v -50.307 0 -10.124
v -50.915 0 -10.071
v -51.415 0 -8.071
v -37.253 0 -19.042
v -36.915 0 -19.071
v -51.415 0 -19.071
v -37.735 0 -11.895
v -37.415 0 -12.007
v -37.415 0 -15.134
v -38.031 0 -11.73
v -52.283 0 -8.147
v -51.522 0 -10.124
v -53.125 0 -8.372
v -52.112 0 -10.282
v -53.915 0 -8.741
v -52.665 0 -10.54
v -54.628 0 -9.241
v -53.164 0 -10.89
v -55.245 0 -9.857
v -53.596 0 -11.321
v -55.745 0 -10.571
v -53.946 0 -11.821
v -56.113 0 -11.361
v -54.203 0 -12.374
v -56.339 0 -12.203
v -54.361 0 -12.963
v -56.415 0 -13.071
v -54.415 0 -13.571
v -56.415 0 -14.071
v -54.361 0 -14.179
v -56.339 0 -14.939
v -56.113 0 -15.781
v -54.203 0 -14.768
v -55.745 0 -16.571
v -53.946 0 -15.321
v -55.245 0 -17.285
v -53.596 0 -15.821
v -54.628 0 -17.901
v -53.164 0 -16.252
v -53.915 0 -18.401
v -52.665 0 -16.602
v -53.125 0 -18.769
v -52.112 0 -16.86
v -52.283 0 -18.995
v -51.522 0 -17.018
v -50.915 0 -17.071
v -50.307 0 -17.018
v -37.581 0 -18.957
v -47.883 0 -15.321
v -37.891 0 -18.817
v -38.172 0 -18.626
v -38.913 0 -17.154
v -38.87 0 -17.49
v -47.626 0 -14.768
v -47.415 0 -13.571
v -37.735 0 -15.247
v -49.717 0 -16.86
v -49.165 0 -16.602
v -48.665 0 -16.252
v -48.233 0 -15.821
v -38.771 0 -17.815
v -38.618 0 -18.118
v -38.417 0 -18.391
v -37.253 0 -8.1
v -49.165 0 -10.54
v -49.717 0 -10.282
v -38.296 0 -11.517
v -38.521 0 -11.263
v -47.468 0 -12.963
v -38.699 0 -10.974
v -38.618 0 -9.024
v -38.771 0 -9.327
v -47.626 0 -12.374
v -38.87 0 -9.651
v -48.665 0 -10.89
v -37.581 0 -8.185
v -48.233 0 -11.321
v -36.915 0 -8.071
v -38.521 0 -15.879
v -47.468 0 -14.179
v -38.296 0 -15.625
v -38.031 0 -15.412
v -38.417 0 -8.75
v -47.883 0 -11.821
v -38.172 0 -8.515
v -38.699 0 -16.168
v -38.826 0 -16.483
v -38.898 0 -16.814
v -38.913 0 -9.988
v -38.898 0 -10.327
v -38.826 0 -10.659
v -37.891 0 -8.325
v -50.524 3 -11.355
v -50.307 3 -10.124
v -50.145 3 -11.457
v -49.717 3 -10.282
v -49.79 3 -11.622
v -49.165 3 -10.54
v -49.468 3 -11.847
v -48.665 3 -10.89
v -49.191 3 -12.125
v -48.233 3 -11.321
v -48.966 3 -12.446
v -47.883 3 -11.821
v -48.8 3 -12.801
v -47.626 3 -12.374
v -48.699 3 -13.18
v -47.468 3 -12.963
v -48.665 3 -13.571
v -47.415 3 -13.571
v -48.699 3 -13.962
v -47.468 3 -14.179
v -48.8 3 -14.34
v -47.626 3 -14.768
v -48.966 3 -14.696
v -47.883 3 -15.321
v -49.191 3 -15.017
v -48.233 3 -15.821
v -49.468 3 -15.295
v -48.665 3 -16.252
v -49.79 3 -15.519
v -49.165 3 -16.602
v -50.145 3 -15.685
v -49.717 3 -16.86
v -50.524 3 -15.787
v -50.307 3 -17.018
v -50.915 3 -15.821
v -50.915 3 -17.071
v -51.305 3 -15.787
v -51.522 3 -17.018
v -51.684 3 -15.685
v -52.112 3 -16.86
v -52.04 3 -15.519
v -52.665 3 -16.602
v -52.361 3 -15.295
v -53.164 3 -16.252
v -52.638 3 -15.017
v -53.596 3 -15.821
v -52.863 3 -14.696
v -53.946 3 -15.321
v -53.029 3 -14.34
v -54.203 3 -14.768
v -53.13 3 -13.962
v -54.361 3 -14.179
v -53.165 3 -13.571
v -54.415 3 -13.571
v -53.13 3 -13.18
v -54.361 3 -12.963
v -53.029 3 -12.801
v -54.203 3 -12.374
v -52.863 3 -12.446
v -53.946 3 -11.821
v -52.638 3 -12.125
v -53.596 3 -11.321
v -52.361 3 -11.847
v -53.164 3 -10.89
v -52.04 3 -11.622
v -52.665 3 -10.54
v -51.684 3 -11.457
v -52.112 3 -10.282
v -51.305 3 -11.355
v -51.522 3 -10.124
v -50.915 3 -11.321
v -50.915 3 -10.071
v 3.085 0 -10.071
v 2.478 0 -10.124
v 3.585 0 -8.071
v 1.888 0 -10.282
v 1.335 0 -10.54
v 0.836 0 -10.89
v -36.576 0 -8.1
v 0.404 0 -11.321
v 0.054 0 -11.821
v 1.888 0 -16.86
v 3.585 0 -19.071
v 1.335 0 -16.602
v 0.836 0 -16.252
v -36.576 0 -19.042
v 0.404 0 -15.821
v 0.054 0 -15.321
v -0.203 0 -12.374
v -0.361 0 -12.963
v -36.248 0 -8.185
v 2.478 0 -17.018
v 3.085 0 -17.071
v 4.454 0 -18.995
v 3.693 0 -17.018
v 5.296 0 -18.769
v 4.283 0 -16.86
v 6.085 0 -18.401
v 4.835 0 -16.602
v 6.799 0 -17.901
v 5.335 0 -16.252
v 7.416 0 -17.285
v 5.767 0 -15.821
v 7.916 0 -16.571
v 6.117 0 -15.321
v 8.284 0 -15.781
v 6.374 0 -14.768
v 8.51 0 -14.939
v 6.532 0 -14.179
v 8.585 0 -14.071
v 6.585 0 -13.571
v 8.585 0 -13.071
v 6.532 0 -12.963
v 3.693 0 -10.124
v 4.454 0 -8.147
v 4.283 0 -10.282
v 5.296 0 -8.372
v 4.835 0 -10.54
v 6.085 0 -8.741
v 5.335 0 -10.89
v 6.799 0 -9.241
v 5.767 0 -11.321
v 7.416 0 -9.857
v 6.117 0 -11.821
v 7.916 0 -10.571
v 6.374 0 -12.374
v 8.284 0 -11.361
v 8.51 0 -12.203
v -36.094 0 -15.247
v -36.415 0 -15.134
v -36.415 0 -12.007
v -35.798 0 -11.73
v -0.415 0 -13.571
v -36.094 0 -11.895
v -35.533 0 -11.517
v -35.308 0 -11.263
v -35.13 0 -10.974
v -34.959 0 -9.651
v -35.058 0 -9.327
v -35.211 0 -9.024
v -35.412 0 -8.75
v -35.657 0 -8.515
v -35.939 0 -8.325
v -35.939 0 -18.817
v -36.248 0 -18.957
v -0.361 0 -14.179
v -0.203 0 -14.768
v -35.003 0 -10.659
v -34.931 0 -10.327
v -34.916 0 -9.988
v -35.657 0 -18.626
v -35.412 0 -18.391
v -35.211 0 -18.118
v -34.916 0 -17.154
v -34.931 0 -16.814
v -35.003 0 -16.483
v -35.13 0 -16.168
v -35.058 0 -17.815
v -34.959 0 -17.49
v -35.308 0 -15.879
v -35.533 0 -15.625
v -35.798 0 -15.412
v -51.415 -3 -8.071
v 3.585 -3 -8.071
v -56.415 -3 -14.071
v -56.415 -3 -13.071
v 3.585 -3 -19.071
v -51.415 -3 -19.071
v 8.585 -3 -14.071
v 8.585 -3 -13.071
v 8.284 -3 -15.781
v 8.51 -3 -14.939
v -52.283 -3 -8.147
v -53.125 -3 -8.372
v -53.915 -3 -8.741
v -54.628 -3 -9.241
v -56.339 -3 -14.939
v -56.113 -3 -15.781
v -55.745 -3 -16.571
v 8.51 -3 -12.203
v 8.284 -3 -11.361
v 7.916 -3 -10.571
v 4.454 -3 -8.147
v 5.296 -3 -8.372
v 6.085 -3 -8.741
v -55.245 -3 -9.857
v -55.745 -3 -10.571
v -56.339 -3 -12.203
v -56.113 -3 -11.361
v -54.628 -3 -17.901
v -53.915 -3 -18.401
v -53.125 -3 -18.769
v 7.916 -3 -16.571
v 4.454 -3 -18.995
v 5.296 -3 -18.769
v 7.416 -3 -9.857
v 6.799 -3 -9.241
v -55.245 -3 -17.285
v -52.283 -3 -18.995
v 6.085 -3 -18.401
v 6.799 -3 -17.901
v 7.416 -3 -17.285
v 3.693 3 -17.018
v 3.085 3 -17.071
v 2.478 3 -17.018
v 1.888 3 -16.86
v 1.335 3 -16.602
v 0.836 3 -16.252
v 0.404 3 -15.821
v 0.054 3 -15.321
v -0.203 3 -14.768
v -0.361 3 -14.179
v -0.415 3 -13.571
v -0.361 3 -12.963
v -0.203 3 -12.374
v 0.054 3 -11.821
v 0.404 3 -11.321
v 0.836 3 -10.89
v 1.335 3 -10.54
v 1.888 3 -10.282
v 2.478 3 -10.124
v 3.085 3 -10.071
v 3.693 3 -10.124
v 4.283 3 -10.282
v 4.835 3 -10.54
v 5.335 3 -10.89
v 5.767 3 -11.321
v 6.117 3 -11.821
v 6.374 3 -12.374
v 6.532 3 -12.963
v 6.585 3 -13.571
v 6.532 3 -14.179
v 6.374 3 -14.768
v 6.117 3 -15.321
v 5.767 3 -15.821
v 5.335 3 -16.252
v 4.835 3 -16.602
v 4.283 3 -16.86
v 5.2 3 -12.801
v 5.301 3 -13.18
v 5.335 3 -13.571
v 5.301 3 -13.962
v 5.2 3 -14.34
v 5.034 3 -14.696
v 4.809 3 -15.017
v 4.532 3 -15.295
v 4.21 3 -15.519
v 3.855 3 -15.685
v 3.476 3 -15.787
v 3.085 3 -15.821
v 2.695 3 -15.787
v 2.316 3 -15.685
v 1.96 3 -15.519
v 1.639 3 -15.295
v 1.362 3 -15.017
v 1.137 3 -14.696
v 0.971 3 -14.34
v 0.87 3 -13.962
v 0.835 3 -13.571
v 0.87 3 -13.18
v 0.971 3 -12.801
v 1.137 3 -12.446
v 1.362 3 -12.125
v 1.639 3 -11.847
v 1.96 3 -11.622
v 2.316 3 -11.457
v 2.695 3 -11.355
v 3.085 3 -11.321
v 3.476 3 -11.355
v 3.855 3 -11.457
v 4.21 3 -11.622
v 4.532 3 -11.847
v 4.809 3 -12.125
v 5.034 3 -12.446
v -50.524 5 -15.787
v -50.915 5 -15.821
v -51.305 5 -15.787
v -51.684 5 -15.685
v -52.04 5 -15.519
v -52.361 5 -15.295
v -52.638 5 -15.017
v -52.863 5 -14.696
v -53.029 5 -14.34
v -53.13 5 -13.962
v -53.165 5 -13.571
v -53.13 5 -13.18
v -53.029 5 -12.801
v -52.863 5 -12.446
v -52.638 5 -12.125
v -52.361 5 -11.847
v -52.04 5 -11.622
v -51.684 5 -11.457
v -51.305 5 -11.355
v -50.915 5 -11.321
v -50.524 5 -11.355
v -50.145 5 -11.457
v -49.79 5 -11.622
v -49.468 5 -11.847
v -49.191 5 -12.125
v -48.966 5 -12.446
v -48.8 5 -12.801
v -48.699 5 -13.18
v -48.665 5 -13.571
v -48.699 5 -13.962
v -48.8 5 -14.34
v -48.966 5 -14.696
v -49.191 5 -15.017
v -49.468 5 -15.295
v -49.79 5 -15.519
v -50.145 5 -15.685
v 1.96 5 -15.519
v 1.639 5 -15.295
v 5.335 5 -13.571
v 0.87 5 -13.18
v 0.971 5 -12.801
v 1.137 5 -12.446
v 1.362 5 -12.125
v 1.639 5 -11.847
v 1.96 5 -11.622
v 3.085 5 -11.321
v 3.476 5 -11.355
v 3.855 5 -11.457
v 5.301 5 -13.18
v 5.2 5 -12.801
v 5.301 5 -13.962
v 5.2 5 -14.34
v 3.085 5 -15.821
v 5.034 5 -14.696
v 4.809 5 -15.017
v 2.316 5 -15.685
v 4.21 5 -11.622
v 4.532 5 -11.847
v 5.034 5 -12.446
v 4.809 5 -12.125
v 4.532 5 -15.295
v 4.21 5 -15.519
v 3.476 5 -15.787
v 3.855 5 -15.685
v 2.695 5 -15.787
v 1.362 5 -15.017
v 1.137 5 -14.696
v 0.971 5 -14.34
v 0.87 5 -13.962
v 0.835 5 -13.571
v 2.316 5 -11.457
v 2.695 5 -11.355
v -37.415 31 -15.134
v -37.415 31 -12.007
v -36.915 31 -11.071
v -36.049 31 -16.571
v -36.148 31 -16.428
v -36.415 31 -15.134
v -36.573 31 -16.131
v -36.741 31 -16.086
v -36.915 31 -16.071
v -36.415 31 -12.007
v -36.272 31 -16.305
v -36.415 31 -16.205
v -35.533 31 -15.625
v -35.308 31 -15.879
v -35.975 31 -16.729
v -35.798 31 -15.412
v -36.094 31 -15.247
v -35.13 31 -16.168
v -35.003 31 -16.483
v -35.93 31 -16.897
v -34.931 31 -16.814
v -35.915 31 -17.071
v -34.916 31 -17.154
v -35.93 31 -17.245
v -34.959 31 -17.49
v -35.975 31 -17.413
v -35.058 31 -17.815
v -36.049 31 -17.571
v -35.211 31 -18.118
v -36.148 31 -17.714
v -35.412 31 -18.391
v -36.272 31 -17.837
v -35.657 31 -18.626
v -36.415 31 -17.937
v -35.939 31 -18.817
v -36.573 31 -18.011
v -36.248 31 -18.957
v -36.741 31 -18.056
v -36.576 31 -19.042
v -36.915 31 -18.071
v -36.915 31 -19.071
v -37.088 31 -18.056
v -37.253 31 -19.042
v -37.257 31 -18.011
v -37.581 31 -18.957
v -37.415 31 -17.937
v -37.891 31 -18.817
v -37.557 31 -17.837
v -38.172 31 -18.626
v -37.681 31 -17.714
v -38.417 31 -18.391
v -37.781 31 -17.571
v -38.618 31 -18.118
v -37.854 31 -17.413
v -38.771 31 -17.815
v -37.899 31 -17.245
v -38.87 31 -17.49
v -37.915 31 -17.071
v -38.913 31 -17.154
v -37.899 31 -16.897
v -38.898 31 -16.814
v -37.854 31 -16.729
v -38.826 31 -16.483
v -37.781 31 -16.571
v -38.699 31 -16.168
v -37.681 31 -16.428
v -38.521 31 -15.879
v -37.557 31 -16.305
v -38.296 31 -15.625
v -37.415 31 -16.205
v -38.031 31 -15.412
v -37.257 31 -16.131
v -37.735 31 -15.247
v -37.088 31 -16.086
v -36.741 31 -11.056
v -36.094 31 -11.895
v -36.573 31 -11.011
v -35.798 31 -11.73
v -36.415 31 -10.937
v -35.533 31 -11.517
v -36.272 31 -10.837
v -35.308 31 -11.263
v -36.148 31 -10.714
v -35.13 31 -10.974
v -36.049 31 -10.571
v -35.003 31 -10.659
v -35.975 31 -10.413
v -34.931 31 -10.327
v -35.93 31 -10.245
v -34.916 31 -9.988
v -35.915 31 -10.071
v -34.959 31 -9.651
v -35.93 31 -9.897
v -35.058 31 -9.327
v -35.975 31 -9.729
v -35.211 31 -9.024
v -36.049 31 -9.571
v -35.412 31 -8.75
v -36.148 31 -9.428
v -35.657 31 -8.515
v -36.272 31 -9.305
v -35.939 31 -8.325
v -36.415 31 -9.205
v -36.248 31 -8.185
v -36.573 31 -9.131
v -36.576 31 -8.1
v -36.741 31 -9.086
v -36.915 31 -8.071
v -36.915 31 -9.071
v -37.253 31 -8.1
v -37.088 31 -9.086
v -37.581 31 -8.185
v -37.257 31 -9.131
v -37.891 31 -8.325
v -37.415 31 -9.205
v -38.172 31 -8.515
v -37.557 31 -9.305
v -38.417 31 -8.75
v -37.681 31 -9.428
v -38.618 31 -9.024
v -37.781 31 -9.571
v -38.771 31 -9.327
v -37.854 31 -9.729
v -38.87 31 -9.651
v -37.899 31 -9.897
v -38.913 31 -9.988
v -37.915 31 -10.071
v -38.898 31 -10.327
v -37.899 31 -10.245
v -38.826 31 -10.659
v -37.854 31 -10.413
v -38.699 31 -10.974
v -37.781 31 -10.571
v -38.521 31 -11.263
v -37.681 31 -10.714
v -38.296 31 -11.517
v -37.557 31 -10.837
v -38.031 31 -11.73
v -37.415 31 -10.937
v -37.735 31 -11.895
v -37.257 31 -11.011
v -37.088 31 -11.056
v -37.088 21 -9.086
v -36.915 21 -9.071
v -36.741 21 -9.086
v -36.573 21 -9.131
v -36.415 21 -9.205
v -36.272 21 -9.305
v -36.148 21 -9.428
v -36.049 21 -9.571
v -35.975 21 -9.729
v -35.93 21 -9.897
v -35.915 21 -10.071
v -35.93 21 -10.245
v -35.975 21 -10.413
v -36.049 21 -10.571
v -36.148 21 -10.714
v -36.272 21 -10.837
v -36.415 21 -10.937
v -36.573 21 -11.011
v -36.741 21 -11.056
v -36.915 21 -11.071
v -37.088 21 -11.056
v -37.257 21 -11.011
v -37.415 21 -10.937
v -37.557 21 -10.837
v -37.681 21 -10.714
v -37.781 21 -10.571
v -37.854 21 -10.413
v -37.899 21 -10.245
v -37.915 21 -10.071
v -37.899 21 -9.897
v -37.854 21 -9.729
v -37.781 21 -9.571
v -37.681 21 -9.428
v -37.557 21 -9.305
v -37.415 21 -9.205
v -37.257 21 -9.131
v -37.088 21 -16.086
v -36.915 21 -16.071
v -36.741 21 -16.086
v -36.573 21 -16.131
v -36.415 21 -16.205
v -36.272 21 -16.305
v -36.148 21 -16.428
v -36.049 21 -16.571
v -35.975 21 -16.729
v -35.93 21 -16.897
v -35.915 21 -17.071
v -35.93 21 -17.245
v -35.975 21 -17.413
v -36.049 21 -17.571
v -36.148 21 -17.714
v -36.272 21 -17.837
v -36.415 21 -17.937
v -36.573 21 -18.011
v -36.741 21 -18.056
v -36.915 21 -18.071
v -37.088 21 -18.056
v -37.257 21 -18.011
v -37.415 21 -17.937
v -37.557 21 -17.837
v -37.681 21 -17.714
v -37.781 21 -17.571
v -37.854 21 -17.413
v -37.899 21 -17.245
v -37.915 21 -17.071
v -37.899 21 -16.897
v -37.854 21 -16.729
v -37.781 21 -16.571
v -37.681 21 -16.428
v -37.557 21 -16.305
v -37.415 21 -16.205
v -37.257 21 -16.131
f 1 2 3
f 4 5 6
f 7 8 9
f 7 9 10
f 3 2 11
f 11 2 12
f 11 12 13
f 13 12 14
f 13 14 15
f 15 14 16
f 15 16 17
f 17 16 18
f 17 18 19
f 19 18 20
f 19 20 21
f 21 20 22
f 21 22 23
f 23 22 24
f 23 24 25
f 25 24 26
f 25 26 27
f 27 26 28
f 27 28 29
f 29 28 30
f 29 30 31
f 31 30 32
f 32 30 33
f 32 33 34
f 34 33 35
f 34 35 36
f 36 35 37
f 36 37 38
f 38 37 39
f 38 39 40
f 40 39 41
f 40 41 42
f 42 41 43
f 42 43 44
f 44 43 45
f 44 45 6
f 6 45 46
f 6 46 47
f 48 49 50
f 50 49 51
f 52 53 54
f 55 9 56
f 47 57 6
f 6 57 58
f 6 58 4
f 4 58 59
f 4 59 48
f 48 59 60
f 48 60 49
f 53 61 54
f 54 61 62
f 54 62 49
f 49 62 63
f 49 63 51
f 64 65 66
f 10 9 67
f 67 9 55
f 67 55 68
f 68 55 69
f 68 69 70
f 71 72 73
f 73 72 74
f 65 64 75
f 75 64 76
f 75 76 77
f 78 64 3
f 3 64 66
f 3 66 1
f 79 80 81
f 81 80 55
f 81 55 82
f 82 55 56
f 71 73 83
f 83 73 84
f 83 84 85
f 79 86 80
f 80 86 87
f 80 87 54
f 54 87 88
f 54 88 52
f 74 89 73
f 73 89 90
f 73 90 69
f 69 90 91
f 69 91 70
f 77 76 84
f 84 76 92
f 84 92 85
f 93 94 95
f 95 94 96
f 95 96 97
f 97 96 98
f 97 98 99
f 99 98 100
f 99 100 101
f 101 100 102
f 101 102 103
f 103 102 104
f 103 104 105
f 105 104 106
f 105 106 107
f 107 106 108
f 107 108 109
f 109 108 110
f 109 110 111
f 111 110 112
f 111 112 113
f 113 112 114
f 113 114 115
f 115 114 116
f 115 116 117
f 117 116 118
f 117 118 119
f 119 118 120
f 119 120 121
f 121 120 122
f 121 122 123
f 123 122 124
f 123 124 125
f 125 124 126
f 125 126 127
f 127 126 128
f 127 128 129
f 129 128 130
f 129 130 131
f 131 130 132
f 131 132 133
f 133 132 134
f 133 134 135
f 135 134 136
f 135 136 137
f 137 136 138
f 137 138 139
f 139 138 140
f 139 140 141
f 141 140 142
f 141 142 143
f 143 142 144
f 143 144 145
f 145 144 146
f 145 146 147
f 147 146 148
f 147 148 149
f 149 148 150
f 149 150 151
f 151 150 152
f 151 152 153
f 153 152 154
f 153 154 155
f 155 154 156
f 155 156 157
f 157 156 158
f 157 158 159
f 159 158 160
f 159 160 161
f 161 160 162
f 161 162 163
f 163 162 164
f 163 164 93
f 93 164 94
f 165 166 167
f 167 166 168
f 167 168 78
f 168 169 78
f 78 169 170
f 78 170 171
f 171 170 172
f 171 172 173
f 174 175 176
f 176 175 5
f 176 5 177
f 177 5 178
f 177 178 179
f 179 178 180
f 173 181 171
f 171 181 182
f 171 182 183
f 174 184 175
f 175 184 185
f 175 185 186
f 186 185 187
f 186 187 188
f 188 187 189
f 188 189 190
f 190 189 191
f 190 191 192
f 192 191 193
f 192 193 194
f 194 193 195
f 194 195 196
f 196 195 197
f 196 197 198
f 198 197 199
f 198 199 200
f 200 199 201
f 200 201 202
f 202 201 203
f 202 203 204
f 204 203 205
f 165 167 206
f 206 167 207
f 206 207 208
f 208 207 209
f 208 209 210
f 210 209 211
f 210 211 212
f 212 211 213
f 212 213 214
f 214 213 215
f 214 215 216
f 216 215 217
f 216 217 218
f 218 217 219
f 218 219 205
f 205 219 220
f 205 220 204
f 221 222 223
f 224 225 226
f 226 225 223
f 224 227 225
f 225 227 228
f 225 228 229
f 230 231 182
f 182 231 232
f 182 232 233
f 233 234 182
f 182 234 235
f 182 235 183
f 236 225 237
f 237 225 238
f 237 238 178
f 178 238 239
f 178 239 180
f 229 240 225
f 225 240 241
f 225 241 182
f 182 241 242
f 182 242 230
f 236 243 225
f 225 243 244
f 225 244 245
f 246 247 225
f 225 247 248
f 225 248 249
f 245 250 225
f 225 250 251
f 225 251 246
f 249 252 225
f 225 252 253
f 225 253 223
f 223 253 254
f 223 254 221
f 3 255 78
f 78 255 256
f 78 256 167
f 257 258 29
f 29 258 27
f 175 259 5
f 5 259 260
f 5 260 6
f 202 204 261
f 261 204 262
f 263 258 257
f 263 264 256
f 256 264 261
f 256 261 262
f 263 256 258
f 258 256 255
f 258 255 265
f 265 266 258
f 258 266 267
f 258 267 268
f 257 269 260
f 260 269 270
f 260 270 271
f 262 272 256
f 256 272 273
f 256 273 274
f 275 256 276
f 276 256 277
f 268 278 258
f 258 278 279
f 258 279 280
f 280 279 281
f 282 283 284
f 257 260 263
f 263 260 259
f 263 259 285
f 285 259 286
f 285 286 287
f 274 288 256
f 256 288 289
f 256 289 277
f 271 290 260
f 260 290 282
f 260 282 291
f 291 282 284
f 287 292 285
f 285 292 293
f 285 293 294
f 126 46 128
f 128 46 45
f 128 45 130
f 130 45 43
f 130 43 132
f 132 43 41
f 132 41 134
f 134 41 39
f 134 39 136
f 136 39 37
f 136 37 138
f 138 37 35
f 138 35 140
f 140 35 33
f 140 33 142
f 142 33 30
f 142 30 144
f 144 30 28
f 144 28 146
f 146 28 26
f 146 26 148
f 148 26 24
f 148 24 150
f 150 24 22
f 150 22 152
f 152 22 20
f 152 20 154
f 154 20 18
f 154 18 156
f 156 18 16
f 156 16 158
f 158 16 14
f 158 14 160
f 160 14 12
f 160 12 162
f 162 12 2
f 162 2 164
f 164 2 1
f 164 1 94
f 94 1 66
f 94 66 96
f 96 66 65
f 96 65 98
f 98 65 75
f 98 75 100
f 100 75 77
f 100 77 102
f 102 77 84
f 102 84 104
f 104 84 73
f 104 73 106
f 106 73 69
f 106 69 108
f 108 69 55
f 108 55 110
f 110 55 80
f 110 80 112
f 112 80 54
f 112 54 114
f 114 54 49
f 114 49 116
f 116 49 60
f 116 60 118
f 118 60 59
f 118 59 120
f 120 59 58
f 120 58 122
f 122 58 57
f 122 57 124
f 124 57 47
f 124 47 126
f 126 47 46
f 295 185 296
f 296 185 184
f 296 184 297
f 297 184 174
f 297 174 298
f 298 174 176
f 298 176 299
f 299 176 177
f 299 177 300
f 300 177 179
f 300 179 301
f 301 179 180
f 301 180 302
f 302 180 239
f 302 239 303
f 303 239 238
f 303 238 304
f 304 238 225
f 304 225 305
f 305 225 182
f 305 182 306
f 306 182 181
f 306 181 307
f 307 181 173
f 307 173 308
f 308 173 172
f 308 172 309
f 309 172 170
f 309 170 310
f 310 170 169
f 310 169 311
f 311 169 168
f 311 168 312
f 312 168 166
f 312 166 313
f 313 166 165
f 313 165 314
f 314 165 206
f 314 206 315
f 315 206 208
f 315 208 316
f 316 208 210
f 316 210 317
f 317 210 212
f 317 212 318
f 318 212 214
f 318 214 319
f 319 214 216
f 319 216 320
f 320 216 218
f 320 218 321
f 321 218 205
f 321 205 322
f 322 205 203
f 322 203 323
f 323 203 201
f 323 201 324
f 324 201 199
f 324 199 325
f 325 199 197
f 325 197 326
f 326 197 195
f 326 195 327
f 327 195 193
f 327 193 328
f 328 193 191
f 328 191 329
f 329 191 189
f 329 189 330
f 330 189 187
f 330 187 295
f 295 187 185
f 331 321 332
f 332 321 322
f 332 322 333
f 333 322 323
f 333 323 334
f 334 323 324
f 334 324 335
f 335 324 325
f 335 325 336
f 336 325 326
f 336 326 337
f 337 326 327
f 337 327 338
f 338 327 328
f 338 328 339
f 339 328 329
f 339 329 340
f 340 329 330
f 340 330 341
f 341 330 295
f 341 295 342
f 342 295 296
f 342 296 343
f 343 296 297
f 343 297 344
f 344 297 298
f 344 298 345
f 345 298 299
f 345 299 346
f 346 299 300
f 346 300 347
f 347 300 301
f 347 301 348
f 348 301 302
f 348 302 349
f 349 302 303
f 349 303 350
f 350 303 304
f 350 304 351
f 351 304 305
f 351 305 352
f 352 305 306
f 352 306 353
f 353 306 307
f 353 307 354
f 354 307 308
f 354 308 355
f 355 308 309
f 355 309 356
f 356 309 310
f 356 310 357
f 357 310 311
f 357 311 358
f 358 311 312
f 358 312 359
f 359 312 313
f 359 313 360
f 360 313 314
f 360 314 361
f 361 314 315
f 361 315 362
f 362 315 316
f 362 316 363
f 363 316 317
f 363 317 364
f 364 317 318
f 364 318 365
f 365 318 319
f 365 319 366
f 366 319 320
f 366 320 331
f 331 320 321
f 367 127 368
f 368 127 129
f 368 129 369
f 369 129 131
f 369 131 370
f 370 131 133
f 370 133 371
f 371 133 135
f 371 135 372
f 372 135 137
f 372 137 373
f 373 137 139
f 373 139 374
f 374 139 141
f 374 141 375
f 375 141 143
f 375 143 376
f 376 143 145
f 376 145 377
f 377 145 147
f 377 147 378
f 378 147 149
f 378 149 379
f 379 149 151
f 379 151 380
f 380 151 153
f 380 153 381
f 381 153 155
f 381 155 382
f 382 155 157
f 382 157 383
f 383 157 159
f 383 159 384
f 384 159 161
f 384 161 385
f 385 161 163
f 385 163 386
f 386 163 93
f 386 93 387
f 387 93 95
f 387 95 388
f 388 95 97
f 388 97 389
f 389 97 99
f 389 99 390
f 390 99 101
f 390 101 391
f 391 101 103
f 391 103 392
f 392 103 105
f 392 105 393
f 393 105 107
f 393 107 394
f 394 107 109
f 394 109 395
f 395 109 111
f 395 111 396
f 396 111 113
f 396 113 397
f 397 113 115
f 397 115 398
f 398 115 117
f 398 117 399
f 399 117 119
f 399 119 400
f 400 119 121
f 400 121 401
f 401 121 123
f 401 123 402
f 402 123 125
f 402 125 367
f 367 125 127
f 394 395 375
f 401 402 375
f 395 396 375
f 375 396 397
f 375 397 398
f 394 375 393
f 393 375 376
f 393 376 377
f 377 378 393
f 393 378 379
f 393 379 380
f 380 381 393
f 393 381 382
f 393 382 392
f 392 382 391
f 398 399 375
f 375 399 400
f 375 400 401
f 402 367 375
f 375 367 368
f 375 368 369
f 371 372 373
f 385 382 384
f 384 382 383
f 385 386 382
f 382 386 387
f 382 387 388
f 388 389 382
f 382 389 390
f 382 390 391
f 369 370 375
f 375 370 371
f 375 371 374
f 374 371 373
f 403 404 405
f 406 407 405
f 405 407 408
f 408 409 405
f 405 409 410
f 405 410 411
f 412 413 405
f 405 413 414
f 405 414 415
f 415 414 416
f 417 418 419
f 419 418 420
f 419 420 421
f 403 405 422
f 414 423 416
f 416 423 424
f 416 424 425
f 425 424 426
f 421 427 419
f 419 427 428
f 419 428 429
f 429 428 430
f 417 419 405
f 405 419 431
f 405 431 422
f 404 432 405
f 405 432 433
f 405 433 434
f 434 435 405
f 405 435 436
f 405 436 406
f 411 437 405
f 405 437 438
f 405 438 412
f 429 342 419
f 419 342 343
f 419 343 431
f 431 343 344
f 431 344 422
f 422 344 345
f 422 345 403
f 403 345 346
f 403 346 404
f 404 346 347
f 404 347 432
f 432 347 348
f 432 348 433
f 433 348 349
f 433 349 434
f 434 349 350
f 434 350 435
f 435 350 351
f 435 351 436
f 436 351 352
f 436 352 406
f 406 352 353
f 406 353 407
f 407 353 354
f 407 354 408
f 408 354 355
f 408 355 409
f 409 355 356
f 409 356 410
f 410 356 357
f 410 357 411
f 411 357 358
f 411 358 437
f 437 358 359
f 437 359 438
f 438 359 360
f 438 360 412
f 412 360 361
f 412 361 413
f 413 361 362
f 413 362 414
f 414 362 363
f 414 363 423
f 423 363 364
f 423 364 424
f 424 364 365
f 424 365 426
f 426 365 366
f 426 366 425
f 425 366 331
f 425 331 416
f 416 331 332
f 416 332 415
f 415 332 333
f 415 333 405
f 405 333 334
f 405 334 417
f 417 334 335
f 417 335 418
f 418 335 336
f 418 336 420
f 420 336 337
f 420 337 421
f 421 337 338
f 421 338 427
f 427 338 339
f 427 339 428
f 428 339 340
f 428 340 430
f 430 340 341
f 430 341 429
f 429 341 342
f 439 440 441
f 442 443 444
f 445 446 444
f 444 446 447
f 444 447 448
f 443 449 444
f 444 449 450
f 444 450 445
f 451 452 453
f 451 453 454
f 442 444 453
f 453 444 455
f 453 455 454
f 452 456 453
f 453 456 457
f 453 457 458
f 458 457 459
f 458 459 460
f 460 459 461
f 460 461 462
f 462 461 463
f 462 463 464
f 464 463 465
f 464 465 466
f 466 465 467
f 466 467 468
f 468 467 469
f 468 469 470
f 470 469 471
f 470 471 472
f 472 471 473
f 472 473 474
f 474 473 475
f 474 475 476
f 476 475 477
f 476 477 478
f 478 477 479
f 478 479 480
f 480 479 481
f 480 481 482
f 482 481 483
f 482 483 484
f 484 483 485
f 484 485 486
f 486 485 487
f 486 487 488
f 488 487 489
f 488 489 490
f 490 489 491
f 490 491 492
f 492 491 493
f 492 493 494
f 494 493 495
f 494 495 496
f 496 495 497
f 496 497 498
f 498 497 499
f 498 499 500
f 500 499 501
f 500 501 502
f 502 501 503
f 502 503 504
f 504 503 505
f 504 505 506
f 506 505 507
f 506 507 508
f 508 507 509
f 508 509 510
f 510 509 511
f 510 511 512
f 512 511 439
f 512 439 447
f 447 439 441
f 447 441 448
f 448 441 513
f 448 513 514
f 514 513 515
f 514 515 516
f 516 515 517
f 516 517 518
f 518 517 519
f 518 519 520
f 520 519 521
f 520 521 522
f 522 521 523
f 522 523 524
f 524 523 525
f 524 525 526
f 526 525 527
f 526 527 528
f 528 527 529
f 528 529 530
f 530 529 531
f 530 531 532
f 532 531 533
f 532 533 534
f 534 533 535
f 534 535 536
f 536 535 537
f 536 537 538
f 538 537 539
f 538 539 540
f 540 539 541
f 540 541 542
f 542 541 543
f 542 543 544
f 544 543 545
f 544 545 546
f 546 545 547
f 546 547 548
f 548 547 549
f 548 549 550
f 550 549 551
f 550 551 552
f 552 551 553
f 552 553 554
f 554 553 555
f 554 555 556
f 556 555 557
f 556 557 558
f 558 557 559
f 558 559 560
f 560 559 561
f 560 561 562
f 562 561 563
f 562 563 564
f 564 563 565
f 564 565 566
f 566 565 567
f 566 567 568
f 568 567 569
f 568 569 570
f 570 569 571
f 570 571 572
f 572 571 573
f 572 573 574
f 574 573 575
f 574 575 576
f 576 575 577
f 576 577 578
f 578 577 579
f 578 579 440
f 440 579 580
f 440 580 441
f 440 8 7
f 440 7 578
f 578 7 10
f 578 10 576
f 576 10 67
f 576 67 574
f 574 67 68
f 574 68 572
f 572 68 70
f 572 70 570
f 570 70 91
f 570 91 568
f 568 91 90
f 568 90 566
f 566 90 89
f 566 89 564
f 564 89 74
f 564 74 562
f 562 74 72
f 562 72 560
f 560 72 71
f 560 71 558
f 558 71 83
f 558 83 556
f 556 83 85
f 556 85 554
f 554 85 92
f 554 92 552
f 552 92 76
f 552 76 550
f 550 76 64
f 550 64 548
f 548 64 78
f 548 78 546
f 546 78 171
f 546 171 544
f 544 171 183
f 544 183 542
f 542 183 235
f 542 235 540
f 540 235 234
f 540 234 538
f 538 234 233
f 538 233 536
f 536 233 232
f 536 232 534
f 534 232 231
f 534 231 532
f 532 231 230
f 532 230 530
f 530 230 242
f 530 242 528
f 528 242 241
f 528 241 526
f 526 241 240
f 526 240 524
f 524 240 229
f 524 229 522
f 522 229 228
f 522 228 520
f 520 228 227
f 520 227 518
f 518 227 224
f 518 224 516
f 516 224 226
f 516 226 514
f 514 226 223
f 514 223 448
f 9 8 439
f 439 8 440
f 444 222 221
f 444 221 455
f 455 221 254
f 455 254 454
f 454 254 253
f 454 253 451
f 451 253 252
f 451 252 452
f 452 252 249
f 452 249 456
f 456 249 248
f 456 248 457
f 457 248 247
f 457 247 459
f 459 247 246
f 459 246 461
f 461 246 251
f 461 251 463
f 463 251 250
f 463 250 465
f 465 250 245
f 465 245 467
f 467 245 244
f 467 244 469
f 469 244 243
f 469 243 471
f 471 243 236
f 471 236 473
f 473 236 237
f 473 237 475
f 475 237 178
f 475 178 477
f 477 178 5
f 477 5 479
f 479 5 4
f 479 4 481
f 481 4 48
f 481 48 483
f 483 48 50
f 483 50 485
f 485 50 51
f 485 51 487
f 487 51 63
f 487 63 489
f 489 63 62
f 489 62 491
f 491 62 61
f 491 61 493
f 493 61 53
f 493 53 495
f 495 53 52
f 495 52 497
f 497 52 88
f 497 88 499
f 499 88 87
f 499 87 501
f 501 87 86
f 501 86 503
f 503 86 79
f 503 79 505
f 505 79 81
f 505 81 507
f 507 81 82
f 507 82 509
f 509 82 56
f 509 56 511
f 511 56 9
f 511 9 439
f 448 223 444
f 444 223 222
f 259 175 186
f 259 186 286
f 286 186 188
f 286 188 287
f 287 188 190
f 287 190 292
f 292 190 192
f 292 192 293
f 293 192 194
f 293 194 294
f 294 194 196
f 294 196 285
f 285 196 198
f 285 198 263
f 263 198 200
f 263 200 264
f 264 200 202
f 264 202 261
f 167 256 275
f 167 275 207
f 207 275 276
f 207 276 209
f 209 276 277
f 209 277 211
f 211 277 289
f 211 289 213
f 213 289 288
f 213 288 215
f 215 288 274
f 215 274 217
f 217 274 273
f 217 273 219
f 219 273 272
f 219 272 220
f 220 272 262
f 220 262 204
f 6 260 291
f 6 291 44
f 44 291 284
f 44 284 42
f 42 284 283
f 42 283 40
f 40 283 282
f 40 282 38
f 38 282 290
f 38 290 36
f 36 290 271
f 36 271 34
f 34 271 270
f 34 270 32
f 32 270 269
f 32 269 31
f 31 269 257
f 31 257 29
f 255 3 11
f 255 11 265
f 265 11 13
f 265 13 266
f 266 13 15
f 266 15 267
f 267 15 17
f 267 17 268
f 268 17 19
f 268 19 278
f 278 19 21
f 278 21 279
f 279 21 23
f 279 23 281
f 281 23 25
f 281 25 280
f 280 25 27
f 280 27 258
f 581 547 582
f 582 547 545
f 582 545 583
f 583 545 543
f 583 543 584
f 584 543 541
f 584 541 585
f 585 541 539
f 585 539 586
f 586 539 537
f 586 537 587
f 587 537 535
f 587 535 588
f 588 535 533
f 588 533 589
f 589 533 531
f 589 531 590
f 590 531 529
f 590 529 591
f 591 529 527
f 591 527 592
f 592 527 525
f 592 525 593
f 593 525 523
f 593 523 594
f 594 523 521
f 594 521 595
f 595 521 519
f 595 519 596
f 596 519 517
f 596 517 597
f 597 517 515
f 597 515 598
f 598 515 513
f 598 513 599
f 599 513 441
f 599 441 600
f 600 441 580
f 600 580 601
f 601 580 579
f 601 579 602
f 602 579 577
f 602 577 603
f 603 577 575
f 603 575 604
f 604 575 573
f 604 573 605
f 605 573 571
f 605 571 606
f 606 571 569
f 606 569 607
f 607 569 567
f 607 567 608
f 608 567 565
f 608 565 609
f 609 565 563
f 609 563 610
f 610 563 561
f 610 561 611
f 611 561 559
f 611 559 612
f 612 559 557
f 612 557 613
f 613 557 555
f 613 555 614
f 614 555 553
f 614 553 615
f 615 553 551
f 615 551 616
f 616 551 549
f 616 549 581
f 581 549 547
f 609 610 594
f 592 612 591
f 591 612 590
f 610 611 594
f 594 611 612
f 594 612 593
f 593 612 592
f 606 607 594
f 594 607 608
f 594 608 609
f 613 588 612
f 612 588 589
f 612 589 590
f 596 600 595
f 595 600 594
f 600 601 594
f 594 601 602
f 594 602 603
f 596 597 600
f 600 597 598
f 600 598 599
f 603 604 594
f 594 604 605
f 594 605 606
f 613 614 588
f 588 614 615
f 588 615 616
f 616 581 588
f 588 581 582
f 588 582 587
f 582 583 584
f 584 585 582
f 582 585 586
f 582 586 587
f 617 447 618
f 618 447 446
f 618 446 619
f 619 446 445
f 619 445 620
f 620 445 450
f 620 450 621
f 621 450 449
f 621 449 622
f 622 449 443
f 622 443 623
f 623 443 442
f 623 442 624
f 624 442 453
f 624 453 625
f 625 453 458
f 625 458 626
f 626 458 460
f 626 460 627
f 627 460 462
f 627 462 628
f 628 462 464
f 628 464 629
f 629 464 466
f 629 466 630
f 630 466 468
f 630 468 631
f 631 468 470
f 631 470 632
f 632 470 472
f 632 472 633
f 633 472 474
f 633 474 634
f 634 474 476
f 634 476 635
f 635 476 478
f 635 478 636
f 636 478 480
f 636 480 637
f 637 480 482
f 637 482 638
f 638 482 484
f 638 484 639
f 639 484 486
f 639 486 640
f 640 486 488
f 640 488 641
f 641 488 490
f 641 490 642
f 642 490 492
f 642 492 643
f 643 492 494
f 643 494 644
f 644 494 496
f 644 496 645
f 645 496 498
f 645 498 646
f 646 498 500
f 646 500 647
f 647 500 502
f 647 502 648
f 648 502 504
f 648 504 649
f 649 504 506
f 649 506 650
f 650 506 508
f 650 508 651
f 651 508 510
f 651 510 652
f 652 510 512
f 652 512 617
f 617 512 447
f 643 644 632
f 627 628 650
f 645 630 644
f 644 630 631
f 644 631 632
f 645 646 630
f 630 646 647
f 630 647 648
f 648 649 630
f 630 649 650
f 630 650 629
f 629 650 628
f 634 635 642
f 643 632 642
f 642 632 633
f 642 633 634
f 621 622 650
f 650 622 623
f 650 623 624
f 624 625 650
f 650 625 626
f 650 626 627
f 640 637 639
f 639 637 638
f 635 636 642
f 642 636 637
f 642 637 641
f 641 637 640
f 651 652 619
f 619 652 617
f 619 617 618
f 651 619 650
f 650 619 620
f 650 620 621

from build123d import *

# Parameters (mm, degrees)
SKETCH2_W           = 65
SKETCH2_H           = 11
BOSS_EXTRUDE1_DEPTH = 3
SKETCH2_4_R         = 3.5
SKETCH2_4_R_2       = 2.25
BOSS_EXTRUDE2_DEPTH = 3
SKETCH2_5_R         = 2.25
BOSS_EXTRUDE3_DEPTH = 5
SKETCH2_6_R         = 2
BOSS_EXTRUDE4_DEPTH = 31
FILLET1_R           = 5
SKETCH3_R           = 1
CUT_EXTRUDE1_DEPTH  = 10


with BuildPart() as part:
    # Sketch2 → Boss-Extrude1 (new body)
    with BuildSketch(Plane(origin=(0, 0, 0), x_dir=(1, 0, 0), z_dir=(0, 1, 0))):
        with Locations((-23.91453319, 13.570918432)):
            Rectangle(SKETCH2_W, SKETCH2_H)
    extrude(amount=-BOSS_EXTRUDE1_DEPTH)

    # Sketch2<4> → Boss-Extrude2 (add)
    with BuildSketch(Plane(origin=(0, 0, 0), x_dir=(1, 0, 0), z_dir=(0, 1, 0))):
        with Locations(Location((-50.91453319, 13.570918432, 0), (0, 0, 270))):
            Circle(SKETCH2_4_R)
        with Locations(Location((3.08546681, 13.570918432, 0), (0, 0, 270))):
            Circle(SKETCH2_4_R)
        with Locations((-50.91453319, 13.570918432)):
            Circle(SKETCH2_4_R_2)
        with Locations((3.08546681, 13.570918432)):
            Circle(SKETCH2_4_R_2)
    extrude(amount=BOSS_EXTRUDE2_DEPTH)

    # Sketch2<5> → Boss-Extrude3 (add)
    with BuildSketch(Plane(origin=(0, 0, 0), x_dir=(1, 0, 0), z_dir=(0, 1, 0))):
        with Locations(Location((-50.91453319, 13.570918432, 0), (0, 0, 270))):
            Circle(SKETCH2_5_R)
        with Locations(Location((3.08546681, 13.570918432, 0), (0, 0, 270))):
            Circle(SKETCH2_5_R)
    extrude(amount=BOSS_EXTRUDE3_DEPTH)

    # Sketch2<6> → Boss-Extrude4 (add)
    with BuildSketch(Plane(origin=(0, 0, 0), x_dir=(1, 0, 0), z_dir=(0, 1, 0))):
        with Locations((-36.91453319, 17.070918432)):
            Circle(SKETCH2_6_R)
        with Locations((-36.91453319, 10.070918432)):
            Circle(SKETCH2_6_R)
        with BuildLine():
            ThreePointArc((-36.41453319, 15.134426759), (-36.91453319, 15.070918432), (-37.41453319, 15.134426759))
            Line((-37.41453319, 15.134426759), (-37.41453319, 12.007410105))
            ThreePointArc((-37.41453319, 12.007410105), (-36.91453319, 12.070918432), (-36.41453319, 12.007410105))
            Line((-36.41453319, 12.007410105), (-36.41453319, 15.134426759))
        make_face()
    extrude(amount=BOSS_EXTRUDE4_DEPTH)

    # Fillet1
    fillet1_edges = [part.edges().sort_by_distance(p)[0] for p in [
        (-56.41453319, -1.5, -8.070918432),
        (-56.41453319, -1.5, -19.070918432),
        (8.58546681, -1.5, -19.070918432),
        (8.58546681, -1.5, -8.070918432),
    ]]
    fillet(fillet1_edges, radius=FILLET1_R)

    # Sketch3 → Cut-Extrude1 (cut)
    with BuildSketch(Plane(origin=(0, 31, 0), x_dir=(1, 0, 0), z_dir=(0, 1, 0))):
        with Locations(Location((-36.91453319, 10.070918432, 0), (0, 0, 270))):
            Circle(SKETCH3_R)
        with Locations(Location((-36.91453319, 17.070918432, 0), (0, 0, 270))):
            Circle(SKETCH3_R)
    extrude(amount=-CUT_EXTRUDE1_DEPTH, mode=Mode.SUBTRACT)


solid = part.part
